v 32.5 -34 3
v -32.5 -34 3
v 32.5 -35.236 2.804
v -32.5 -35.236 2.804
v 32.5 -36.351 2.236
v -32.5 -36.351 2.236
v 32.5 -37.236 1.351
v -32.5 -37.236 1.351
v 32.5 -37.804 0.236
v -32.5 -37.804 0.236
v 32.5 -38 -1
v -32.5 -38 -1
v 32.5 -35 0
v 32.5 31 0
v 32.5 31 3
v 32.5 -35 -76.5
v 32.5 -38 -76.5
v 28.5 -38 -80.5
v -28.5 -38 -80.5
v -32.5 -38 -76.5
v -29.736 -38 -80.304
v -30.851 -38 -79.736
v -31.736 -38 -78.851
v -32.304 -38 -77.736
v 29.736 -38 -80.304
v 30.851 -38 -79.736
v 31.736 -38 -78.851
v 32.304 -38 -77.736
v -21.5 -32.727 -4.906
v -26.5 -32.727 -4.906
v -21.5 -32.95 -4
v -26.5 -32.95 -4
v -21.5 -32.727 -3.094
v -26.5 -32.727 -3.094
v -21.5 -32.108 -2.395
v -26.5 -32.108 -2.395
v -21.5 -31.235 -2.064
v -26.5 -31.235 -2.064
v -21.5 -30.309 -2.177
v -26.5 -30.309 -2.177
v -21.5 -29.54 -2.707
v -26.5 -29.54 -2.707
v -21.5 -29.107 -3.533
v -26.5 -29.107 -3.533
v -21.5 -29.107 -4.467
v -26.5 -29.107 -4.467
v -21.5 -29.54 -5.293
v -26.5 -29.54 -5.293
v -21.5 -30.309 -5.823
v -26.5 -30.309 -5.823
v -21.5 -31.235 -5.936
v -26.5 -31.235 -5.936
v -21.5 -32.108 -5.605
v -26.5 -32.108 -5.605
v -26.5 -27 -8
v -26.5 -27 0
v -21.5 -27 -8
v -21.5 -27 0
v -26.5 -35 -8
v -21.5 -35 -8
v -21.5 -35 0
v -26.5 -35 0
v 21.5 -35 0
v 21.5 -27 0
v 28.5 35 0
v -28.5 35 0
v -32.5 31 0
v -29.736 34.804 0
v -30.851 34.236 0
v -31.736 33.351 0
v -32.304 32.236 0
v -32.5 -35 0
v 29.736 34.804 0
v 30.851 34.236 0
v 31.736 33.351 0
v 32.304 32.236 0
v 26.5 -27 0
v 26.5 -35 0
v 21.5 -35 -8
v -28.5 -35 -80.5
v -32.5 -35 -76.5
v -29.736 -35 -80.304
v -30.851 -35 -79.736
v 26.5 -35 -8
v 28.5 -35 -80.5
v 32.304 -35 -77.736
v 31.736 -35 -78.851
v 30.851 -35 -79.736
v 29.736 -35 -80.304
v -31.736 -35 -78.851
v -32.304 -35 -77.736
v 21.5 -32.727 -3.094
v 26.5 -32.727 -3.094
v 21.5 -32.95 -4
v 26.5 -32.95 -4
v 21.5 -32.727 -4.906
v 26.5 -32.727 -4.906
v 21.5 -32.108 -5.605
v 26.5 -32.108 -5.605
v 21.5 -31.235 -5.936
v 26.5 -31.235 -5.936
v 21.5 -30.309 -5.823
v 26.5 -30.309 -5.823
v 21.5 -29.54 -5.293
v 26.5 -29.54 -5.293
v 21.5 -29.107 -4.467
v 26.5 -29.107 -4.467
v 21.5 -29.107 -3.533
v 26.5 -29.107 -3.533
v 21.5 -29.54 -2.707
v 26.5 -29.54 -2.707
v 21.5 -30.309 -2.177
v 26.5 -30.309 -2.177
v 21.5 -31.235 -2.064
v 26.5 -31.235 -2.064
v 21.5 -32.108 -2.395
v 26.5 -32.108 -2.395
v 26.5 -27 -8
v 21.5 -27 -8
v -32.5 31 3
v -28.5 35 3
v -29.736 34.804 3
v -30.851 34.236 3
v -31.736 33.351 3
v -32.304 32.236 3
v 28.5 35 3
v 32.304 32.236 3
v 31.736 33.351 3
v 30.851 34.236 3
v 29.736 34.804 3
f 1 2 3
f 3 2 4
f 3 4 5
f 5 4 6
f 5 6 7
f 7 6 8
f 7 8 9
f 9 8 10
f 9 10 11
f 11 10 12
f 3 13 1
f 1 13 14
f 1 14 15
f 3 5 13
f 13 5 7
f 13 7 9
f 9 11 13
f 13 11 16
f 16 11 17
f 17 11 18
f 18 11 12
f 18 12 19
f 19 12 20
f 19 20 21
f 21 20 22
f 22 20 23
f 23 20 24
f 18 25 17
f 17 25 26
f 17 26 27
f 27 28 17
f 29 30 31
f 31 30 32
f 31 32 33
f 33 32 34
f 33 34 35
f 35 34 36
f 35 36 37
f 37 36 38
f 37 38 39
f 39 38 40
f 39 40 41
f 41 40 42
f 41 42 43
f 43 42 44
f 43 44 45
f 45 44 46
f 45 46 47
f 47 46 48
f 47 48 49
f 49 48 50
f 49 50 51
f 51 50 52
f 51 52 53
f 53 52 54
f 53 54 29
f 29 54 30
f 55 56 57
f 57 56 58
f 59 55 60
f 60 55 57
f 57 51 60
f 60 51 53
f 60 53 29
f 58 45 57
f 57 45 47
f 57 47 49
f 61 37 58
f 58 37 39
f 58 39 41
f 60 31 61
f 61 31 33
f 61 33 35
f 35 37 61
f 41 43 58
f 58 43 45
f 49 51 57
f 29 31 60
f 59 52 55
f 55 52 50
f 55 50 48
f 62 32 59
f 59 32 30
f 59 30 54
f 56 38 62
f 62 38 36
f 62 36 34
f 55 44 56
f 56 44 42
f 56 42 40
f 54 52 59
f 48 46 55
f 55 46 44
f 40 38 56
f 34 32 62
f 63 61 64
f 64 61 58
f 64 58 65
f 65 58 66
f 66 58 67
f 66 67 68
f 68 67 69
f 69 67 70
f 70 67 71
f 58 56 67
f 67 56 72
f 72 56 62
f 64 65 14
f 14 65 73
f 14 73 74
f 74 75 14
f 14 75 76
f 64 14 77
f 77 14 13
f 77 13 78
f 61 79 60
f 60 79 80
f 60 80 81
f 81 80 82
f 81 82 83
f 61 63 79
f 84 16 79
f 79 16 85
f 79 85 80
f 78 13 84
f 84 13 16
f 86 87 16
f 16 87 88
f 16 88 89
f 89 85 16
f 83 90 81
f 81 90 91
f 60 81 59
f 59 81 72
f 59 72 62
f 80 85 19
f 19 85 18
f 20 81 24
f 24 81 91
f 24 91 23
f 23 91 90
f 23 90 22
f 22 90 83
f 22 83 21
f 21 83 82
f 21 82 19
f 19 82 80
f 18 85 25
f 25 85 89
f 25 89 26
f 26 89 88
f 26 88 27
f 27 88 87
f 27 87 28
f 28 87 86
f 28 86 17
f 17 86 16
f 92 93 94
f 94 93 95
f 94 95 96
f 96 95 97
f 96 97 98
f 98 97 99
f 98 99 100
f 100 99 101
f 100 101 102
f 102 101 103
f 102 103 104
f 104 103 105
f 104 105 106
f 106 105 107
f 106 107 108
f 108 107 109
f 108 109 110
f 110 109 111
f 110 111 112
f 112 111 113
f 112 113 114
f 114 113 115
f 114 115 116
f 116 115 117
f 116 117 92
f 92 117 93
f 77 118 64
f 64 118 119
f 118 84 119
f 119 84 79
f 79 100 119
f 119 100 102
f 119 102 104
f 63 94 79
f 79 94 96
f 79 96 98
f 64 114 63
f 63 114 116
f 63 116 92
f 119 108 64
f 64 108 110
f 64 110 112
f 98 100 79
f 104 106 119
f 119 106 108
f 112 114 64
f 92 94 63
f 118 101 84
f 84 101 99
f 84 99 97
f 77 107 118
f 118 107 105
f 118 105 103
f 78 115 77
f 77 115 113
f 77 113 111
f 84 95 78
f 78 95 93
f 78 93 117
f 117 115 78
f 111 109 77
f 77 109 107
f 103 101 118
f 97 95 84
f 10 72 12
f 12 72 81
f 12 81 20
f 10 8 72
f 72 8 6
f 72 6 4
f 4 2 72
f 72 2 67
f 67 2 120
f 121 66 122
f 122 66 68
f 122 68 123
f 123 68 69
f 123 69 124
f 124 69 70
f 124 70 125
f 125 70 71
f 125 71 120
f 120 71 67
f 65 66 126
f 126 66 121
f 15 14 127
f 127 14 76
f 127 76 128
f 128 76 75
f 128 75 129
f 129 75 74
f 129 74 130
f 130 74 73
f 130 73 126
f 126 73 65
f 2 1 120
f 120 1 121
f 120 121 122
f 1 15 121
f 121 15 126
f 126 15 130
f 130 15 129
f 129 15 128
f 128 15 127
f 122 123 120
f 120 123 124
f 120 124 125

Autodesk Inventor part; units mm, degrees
ref_plane "YZ Plane" through (0, 0, 0) normal (1, 0, 0) x (0, 1, 0)
ref_plane "XZ Plane" through (0, 0, 0) normal (0, 1, 0) x (-1, 0, 0)
ref_plane "XY Plane" through (0, 0, 0) normal (0, 0, 1) x (1, 0, 0)
sketch "Эскиз1" plane through (0, 0, 0) normal (0, 0, 1) x (1, 0, 0)
  line L0 (28.5, 35) -> (-28.5, 35)
  arc A0 (32.5, 31) -> (28.5, 35) centre (28.5, 31) ccw
  arc A1 (-28.5, 35) -> (-32.5, 31) centre (-28.5, 31) ccw
  line L1 (-32.5, 31) -> (-32.5, -35)
  line L2 (32.5, -35) -> (32.5, 31)
  line L3 (26.5, -35) -> (32.5, -35)
  line L4 (-32.5, -35) -> (-26.5, -35)
  line L5 (26.5, -35) -> (-26.5, -35)
  point P0 (0, 0)
extrude "Выдавливание1" add sketch "Эскиз1" along normal blind 3
ref_plane "РабПлоскость1" through (26.5, -31, -4) normal (-1, 0, 0) x (0, -1, 0)
sketch "Эскиз3" plane through (26.5, -31, -4) normal (-1, 0, 0) x (0, -1, 0)
  line L0 (-4, 4) -> (-4, -4) projected
  line L1 (-4, -4) -> (4, -4) projected
  line L2 (4, -4) -> (4, 4) projected
  line L3 (4, 4) -> (-4, 4) projected
  circle A0 centre (0, 0) radius 1.95 projected
  point P0 (-31, 4)
extrude "Выдавливание3" add sketch "Эскиз3" along normal blind 5
sketch "Эскиз4" plane through (-32.5, -35, 3) normal (0, -1, 0) x (1, 0, 0)
  line L0 (0, -79.5) -> (0, -3) projected
  line L1 (0, -3) -> (0, 0) projected
  line L2 (0, 0) -> (65, 0) projected
  line L3 (65, -3) -> (65, 0) projected
  line L4 (65, -79.5) -> (65, -3) projected
  arc A0 (61, -83.5) -> (65, -79.5) centre (61, -79.5) ccw projected
  line L5 (4, -83.5) -> (61, -83.5) projected
  arc A1 (0, -79.5) -> (4, -83.5) centre (4, -79.5) ccw projected
  point P0 (32.5, -3)
extrude "Выдавливание4" add sketch "Эскиз4" along normal blind 3
ref_plane "РабПлоскость3" through (0, 31, 0) normal (-1, 0, 0) x (0, 0, 1)
mirror "Зеркальное отражение2" about plane through (0, 31, 0) normal (-1, 0, 0) of "Выдавливание3"
fillet "Сопряжение3" radius 4 1 edges at (0, -38, 3)
properties part number "tail_box_cup"
